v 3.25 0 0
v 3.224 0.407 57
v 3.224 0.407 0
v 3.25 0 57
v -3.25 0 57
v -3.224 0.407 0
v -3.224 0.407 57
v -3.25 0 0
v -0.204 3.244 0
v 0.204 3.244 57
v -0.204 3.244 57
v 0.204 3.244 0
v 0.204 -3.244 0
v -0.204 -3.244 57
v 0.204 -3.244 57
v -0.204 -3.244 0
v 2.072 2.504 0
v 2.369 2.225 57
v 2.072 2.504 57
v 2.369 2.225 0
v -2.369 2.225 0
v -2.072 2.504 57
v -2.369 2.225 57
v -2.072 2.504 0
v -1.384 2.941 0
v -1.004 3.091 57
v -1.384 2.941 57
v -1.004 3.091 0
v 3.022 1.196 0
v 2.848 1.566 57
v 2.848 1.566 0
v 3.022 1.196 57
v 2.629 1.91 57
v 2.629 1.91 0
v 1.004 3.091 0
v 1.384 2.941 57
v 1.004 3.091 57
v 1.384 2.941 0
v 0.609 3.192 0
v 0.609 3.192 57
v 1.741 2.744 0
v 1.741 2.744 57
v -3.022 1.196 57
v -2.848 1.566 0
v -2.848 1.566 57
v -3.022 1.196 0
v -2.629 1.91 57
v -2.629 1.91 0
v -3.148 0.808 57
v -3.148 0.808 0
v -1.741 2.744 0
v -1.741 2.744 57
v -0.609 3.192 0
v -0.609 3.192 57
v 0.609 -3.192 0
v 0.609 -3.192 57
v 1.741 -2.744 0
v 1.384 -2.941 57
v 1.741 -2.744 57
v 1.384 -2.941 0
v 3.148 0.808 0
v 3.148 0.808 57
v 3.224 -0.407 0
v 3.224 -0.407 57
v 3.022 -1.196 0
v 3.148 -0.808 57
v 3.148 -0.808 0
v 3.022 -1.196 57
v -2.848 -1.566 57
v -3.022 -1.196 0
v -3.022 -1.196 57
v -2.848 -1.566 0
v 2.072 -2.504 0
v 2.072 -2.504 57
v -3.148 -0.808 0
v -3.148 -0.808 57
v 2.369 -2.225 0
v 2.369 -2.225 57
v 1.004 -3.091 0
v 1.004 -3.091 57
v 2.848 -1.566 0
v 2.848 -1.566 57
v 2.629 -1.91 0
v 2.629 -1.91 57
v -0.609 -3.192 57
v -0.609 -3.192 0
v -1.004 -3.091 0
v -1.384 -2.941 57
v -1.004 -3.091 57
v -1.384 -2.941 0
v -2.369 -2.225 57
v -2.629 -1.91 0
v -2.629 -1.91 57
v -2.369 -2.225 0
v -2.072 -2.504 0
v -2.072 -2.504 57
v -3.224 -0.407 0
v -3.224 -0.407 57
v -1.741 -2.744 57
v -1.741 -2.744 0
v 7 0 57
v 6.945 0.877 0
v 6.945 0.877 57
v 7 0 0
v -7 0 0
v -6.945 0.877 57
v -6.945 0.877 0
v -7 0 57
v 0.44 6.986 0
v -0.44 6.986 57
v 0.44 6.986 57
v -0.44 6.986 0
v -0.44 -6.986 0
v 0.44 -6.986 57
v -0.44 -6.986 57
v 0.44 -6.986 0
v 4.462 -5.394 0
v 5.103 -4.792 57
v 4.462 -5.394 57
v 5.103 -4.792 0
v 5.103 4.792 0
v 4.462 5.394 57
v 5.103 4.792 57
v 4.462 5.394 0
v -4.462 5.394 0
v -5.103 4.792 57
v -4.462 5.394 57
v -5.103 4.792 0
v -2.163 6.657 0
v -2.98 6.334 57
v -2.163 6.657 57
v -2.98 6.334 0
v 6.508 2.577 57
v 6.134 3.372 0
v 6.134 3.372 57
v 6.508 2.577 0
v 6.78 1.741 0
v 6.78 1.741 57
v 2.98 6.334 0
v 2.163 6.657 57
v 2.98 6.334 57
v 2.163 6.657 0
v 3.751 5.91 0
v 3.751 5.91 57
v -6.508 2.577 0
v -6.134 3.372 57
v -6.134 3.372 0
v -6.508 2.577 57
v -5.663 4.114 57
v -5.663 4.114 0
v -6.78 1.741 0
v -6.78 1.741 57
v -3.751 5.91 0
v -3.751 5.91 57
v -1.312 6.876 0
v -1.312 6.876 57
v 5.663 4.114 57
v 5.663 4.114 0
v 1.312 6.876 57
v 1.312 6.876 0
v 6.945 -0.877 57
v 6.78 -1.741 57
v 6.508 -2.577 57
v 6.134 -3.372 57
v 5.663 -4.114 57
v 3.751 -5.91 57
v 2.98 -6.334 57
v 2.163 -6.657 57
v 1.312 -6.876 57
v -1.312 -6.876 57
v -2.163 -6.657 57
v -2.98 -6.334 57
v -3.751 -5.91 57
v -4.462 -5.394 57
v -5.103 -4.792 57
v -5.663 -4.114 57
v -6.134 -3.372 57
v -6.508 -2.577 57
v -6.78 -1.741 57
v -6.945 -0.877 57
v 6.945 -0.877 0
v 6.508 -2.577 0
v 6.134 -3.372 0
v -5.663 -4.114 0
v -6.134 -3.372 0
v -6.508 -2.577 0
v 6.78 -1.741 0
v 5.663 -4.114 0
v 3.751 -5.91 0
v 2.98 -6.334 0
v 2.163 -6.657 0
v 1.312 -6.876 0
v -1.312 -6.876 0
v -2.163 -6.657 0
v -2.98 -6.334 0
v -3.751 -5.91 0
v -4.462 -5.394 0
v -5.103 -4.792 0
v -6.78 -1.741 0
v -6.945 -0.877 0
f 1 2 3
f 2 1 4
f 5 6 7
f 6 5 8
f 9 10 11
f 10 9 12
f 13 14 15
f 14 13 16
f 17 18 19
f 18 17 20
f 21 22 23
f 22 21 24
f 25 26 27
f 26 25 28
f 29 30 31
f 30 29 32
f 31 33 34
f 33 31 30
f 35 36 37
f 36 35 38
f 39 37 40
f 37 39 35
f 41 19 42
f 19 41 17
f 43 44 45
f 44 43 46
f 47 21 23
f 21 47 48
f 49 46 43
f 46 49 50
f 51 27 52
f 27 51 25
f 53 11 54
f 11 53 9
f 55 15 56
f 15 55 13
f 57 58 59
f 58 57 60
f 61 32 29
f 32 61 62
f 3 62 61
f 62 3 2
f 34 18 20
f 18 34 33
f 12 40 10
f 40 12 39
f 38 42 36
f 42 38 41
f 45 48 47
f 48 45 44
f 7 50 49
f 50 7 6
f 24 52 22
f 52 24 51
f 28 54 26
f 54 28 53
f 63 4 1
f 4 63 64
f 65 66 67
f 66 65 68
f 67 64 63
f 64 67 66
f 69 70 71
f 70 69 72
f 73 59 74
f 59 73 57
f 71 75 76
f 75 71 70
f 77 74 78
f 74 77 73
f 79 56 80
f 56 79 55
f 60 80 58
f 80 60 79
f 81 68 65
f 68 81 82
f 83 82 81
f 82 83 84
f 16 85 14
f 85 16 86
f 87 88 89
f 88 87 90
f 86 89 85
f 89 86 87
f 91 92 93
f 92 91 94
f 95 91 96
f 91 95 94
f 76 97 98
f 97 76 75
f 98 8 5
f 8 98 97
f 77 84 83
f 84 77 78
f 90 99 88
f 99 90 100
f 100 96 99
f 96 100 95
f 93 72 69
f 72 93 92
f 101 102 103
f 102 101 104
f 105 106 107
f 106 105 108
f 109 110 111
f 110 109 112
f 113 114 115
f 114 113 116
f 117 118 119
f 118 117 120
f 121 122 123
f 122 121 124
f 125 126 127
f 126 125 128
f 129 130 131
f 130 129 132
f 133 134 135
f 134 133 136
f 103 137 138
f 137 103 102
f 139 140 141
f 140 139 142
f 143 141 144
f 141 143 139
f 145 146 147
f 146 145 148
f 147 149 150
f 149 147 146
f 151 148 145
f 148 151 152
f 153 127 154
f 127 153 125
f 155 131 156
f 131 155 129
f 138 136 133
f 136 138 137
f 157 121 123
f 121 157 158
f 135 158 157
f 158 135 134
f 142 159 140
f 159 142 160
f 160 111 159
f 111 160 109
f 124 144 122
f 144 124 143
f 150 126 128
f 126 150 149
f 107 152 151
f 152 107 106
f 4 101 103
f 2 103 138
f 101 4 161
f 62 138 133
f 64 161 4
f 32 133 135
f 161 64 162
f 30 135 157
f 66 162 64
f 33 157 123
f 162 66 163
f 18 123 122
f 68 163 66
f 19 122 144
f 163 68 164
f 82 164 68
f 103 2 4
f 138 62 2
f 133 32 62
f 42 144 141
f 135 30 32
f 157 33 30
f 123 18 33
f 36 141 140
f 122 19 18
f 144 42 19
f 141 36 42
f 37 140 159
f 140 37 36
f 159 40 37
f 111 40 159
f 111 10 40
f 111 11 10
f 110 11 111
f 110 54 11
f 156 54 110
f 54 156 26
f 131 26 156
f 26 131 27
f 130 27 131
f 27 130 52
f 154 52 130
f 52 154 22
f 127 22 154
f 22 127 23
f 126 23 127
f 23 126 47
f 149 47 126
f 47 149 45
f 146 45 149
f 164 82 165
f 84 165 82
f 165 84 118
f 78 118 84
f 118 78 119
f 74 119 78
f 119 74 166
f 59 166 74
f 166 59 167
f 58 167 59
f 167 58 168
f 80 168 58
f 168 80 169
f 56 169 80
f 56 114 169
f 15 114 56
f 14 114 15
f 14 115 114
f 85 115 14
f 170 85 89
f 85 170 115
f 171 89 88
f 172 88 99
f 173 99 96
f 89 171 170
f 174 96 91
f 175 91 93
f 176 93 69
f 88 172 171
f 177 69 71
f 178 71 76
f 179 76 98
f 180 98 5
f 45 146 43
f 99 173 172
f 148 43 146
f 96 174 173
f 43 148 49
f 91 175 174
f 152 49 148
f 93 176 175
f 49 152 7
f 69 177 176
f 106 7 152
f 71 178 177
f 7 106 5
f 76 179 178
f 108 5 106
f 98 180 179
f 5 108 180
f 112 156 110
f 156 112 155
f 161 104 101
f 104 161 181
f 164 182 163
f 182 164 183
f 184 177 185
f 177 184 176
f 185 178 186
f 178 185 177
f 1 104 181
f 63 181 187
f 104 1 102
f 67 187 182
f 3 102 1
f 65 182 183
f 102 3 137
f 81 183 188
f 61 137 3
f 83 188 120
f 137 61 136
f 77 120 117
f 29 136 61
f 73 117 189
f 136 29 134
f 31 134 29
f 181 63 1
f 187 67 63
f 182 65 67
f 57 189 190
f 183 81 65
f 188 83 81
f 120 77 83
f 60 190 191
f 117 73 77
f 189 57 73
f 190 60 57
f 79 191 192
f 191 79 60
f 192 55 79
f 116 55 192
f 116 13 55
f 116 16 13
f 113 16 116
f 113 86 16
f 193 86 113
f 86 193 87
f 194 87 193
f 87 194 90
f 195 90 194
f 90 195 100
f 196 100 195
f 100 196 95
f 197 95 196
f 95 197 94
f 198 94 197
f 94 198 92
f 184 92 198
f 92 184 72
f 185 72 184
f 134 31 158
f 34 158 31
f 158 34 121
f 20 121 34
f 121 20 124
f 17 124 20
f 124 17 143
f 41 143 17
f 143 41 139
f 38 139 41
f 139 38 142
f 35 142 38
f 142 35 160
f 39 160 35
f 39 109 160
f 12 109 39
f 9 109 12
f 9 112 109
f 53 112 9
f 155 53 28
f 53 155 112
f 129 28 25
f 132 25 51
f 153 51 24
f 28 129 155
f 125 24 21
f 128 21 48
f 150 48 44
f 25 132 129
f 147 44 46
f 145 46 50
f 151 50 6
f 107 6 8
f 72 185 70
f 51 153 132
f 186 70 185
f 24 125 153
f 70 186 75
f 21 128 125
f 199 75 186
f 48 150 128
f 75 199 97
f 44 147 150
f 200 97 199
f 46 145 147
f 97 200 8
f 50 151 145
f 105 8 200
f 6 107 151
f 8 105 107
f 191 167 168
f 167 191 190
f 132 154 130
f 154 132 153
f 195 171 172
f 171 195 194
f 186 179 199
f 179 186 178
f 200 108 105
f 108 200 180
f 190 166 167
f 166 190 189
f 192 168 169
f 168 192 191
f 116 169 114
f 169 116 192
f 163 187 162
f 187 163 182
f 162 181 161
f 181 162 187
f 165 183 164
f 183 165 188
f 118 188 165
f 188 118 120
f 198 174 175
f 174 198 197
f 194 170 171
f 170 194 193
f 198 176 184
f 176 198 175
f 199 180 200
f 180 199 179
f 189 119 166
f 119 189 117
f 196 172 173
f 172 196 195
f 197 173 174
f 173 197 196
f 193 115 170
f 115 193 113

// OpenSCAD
$fn = 50;


difference() {
	union() {
		cylinder(h = 57, r = 7.0000000000);
	}
	union() {
		translate(v = [0, 0, -100]) {
			cylinder(h = 200, r = 3.2500000000);
		}
		translate(v = [0, 0, -100]) {
			cylinder(h = 200, r = 1.8000000000);
		}
	}
}
